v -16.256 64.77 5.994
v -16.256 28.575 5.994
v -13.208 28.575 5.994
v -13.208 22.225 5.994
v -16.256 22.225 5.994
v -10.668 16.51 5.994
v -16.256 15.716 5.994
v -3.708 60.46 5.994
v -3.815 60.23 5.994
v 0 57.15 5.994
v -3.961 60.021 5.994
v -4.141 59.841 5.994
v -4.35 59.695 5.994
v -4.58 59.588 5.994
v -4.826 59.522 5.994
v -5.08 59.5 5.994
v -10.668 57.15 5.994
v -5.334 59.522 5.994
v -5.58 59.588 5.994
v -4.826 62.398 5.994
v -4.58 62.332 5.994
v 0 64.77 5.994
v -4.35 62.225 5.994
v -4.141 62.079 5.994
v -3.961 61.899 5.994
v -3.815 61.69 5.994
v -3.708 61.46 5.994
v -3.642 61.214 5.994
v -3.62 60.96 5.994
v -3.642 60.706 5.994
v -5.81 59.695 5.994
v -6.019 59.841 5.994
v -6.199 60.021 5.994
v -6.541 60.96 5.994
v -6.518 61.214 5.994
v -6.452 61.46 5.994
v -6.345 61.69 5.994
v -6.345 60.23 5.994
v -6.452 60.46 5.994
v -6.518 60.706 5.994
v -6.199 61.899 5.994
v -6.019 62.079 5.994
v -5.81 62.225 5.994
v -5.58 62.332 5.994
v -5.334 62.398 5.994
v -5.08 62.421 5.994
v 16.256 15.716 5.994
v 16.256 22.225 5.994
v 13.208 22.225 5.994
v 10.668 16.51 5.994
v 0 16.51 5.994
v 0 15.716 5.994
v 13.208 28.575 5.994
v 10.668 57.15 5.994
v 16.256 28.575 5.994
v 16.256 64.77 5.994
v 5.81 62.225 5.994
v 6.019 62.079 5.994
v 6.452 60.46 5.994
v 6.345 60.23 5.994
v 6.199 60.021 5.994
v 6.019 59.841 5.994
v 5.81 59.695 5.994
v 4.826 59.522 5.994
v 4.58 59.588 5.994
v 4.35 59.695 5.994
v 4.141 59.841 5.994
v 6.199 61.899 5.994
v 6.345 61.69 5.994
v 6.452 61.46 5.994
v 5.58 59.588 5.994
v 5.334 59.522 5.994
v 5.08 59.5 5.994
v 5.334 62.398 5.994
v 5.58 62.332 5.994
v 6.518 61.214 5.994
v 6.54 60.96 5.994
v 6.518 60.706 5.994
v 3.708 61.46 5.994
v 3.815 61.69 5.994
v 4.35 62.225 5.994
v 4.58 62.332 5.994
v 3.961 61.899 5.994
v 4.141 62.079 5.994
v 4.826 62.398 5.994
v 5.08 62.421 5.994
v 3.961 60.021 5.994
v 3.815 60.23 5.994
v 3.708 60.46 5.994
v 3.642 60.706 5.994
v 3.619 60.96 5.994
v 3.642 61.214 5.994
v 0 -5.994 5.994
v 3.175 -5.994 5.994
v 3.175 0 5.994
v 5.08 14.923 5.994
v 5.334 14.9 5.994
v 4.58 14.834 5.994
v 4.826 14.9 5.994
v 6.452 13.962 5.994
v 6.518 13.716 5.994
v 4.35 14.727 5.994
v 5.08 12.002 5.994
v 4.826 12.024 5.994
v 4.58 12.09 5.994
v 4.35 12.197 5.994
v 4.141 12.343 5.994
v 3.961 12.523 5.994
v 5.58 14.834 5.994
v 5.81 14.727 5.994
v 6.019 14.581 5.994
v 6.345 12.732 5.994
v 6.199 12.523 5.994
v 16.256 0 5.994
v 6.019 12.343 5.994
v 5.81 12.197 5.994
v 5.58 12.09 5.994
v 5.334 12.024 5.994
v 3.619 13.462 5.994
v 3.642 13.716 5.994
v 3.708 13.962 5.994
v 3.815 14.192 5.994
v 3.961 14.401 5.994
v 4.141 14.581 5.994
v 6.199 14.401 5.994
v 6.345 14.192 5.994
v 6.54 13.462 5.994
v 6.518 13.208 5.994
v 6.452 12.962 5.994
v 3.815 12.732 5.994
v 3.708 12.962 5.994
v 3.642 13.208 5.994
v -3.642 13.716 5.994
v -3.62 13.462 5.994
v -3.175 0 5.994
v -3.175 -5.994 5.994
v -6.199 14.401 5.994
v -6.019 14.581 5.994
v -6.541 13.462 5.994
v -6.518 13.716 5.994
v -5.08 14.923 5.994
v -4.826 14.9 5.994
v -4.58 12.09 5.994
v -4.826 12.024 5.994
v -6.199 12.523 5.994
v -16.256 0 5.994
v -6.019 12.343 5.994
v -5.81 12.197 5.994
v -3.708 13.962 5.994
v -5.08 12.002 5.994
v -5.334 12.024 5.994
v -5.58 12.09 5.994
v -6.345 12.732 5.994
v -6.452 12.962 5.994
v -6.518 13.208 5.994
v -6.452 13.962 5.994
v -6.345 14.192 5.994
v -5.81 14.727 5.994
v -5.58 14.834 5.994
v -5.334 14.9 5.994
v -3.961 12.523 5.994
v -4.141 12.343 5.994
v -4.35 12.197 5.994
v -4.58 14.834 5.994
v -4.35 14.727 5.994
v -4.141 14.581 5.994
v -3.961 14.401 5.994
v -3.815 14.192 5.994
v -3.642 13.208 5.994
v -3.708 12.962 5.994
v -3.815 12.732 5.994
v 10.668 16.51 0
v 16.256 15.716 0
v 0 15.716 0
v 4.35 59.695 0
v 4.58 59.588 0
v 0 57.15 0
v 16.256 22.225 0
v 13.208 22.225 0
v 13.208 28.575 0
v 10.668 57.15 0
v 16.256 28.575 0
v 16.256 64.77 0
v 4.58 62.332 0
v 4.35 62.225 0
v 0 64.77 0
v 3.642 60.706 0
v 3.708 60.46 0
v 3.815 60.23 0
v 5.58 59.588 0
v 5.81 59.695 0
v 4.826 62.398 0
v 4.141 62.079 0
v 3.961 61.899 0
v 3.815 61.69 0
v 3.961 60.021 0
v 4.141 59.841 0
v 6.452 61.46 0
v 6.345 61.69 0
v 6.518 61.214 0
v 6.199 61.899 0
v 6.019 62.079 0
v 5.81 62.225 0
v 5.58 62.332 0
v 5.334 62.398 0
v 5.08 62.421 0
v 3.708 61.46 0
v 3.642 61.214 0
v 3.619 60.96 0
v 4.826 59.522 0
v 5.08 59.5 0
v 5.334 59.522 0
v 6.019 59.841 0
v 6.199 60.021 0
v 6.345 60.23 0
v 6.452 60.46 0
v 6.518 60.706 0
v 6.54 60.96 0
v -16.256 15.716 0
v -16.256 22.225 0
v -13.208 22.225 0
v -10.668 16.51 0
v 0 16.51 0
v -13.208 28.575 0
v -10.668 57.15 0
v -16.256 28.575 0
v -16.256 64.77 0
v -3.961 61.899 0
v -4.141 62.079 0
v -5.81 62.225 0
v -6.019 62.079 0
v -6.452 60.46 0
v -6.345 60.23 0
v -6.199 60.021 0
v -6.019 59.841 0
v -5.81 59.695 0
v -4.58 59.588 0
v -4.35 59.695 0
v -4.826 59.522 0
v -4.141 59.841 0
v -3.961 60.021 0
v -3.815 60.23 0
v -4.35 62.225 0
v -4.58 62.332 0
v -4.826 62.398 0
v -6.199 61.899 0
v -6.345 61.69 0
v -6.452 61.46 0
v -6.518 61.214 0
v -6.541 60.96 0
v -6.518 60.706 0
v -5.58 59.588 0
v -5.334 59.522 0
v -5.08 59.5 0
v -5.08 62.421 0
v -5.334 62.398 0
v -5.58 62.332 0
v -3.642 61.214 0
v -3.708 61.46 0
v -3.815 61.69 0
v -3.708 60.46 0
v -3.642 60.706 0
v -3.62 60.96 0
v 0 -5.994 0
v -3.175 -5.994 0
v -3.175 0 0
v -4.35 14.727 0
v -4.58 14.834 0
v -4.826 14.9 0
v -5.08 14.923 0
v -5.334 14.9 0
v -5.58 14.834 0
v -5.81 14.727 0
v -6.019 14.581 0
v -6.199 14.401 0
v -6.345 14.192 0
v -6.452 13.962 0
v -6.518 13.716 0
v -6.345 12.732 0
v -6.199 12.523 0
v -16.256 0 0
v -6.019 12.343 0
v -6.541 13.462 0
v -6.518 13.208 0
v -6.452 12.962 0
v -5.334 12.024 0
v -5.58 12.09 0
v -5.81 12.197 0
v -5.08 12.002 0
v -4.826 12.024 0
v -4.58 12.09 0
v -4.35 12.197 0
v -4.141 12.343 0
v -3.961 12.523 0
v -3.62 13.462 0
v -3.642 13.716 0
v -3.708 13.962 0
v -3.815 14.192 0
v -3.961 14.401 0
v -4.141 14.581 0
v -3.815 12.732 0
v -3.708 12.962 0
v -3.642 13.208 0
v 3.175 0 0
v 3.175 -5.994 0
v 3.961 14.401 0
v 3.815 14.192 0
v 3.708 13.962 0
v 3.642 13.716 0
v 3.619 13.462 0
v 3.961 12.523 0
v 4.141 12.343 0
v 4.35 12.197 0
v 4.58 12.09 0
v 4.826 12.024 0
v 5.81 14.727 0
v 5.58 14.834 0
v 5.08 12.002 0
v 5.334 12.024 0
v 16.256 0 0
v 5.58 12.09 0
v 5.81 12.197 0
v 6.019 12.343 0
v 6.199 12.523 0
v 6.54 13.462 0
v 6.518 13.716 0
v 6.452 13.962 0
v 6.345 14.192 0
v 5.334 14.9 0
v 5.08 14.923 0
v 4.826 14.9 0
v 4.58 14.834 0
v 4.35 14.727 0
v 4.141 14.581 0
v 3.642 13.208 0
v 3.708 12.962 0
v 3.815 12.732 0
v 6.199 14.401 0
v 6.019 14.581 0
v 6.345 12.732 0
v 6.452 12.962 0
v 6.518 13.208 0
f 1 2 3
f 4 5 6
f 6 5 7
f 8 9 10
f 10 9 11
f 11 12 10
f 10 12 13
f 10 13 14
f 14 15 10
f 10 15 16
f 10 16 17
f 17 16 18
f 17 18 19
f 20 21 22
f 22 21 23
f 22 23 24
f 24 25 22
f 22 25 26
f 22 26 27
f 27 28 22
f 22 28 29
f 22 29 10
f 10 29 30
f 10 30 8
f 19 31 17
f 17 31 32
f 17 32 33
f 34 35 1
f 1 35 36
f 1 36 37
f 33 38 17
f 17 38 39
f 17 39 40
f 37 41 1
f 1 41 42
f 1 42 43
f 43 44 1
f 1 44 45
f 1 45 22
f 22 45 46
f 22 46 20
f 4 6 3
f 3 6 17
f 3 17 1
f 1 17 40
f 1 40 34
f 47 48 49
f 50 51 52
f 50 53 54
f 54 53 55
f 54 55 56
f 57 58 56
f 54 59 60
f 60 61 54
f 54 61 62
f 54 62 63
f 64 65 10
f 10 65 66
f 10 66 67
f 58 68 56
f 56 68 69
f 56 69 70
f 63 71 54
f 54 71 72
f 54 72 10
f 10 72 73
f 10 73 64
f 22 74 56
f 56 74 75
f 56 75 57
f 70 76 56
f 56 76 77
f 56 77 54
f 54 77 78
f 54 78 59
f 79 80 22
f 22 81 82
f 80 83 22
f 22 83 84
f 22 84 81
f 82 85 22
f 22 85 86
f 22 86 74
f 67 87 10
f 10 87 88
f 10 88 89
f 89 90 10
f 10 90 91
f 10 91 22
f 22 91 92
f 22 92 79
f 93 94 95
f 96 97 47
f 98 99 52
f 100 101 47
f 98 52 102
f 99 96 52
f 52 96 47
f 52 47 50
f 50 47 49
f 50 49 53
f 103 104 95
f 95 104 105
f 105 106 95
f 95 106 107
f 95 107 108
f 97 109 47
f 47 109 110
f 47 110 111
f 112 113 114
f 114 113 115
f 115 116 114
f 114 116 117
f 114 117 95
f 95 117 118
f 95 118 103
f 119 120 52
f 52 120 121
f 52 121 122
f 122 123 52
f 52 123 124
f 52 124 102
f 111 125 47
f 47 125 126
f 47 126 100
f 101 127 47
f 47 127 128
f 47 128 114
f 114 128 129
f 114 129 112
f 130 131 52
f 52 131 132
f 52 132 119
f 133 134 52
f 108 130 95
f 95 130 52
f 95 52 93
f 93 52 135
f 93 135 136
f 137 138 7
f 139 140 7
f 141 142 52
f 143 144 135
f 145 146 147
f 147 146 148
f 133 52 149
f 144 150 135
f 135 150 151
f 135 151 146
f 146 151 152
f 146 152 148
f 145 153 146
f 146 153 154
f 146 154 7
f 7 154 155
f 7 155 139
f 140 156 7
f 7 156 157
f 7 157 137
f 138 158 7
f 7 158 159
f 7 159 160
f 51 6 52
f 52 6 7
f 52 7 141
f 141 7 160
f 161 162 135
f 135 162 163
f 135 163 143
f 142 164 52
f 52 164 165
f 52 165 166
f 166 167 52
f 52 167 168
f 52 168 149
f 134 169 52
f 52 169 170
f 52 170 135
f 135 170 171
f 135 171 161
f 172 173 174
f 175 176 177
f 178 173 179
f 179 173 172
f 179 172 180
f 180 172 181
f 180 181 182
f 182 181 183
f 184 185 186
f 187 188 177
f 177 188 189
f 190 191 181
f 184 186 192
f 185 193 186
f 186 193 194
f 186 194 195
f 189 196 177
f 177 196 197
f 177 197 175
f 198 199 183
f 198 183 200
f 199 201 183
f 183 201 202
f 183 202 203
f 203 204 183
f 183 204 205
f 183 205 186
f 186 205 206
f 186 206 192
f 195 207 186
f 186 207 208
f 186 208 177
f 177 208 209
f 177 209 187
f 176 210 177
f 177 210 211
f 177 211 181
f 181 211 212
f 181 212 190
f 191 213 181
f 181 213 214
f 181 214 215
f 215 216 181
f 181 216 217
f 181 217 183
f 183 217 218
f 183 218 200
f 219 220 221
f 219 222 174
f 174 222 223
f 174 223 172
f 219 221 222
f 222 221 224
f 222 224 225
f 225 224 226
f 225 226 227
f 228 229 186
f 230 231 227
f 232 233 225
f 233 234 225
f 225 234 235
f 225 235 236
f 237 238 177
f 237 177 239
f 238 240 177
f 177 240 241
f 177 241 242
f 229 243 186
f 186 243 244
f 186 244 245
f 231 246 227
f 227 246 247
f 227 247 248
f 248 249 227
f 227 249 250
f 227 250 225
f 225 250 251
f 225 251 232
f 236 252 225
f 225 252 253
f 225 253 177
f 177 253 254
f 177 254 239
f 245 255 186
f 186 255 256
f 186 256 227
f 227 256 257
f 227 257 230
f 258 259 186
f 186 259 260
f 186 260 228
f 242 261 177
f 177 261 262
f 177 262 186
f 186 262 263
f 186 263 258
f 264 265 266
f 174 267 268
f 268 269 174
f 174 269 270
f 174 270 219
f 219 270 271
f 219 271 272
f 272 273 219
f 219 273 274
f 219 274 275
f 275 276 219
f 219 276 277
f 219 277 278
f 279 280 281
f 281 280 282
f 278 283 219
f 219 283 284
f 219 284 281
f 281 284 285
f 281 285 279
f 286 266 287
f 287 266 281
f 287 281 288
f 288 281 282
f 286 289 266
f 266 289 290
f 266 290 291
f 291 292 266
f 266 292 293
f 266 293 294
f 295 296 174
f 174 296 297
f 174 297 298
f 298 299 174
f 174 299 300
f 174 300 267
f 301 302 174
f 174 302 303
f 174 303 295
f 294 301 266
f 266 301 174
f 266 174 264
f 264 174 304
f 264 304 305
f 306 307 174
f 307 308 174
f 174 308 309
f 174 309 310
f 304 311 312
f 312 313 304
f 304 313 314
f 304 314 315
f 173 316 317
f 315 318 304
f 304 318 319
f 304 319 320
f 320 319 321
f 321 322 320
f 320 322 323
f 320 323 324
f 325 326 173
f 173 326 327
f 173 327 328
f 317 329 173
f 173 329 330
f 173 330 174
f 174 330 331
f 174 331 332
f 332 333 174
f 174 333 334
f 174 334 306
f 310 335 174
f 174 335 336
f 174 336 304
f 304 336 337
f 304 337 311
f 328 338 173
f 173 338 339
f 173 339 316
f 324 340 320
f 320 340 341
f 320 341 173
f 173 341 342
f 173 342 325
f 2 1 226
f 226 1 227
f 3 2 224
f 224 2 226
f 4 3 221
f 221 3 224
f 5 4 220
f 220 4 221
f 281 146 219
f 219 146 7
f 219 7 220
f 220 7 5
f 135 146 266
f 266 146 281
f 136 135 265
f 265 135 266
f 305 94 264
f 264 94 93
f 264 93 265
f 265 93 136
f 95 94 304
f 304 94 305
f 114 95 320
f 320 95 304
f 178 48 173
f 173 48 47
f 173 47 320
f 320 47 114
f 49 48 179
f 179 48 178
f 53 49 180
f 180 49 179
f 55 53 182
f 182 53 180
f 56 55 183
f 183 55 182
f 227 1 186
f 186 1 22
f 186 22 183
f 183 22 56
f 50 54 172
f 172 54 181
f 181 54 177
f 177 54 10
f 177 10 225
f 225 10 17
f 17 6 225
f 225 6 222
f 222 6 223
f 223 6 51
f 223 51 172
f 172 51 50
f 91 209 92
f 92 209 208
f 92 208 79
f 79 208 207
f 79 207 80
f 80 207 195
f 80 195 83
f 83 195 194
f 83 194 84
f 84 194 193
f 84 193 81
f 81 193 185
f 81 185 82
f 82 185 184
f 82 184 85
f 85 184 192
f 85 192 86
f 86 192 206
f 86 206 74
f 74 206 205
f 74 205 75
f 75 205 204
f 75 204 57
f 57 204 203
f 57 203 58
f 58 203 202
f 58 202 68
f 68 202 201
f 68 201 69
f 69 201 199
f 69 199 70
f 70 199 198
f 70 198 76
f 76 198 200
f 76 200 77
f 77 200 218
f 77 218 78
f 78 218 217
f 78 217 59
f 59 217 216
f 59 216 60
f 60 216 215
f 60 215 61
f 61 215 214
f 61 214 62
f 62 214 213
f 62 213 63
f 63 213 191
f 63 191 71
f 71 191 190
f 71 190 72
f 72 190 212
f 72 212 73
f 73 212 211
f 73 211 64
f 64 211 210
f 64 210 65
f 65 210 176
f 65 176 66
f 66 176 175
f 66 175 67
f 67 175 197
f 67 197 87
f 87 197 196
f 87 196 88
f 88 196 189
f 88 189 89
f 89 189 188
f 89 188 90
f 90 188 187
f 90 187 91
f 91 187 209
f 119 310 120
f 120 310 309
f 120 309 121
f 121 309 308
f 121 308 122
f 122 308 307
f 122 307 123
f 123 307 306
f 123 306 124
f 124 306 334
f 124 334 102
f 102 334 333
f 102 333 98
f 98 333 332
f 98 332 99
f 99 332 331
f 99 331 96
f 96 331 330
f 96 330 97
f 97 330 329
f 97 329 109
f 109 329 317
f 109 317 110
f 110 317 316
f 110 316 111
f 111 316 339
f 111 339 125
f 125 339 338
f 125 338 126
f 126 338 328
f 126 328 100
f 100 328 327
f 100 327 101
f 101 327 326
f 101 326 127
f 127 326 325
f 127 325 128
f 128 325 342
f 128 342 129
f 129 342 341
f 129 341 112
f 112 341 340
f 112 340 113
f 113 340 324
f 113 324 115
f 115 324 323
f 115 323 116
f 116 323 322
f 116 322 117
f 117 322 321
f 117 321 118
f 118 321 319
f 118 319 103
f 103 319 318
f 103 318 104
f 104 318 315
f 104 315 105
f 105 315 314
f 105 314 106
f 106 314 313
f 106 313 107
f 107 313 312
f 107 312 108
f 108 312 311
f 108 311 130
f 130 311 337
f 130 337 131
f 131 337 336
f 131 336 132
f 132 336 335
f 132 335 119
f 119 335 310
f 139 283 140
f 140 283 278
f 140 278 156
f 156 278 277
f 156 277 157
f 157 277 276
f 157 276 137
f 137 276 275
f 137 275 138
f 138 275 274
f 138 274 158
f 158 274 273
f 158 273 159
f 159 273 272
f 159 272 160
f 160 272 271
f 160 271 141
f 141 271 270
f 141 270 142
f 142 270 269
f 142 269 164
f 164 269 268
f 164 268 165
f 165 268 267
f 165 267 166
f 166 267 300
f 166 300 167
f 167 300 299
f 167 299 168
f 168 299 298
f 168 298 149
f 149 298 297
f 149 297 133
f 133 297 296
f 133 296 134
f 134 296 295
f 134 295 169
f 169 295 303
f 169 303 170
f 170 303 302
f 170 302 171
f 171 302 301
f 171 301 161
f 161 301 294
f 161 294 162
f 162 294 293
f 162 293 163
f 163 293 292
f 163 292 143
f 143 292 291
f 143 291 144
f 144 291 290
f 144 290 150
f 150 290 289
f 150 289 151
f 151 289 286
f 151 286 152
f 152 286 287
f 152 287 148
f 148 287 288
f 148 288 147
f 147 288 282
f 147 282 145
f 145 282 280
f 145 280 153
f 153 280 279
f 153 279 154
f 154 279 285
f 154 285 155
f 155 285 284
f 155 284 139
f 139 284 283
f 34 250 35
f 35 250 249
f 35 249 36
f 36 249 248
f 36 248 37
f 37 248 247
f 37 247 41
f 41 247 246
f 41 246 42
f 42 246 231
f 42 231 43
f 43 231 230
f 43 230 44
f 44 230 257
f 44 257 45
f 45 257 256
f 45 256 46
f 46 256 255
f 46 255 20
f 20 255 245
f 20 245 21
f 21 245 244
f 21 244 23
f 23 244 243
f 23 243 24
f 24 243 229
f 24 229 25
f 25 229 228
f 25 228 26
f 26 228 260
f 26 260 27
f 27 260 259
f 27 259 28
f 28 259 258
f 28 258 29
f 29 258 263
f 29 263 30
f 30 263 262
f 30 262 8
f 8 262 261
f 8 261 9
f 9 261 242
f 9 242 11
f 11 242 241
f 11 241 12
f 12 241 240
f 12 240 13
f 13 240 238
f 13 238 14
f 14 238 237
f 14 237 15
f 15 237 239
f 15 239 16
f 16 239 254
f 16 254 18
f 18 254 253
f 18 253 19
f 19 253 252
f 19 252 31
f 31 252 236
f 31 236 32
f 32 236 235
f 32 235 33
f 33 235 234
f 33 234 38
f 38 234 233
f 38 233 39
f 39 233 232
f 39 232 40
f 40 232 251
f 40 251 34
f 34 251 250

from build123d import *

# Parameters (mm, degrees)
SKETCH1_R           = 1.4605
SKETCH1_W           = 21.336
SKETCH1_H           = 40.64
BOSS_EXTRUDE1_DEPTH = 5.9944


with BuildPart() as part:
    # Sketch1 → Boss-Extrude1 (new body)
    with BuildSketch(Plane.XY):
        Polygon((-3.175, -5.9944), (3.175, -5.9944), (3.175, 0), (16.256, 0), (16.256, 22.225), (13.208, 22.225), (13.208, 28.575), (16.256, 28.575), (16.256, 64.77), (-16.256, 64.77), (-16.256, 28.575), (-13.208, 28.575), (-13.208, 22.225), (-16.256, 22.225), (-16.256, 0), (-3.175, 0), align=None)
        with Locations((5.08, 60.96)):
            Circle(SKETCH1_R, mode=Mode.SUBTRACT)
        with Locations((5.08, 13.462)):
            Circle(SKETCH1_R, mode=Mode.SUBTRACT)
        with Locations((-5.08, 13.462)):
            Circle(SKETCH1_R, mode=Mode.SUBTRACT)
        with Locations((-5.08, 60.96)):
            Circle(SKETCH1_R, mode=Mode.SUBTRACT)
        with Locations((0, 36.83)):
            Rectangle(SKETCH1_W, SKETCH1_H, mode=Mode.SUBTRACT)
    extrude(amount=BOSS_EXTRUDE1_DEPTH)


solid = part.part
